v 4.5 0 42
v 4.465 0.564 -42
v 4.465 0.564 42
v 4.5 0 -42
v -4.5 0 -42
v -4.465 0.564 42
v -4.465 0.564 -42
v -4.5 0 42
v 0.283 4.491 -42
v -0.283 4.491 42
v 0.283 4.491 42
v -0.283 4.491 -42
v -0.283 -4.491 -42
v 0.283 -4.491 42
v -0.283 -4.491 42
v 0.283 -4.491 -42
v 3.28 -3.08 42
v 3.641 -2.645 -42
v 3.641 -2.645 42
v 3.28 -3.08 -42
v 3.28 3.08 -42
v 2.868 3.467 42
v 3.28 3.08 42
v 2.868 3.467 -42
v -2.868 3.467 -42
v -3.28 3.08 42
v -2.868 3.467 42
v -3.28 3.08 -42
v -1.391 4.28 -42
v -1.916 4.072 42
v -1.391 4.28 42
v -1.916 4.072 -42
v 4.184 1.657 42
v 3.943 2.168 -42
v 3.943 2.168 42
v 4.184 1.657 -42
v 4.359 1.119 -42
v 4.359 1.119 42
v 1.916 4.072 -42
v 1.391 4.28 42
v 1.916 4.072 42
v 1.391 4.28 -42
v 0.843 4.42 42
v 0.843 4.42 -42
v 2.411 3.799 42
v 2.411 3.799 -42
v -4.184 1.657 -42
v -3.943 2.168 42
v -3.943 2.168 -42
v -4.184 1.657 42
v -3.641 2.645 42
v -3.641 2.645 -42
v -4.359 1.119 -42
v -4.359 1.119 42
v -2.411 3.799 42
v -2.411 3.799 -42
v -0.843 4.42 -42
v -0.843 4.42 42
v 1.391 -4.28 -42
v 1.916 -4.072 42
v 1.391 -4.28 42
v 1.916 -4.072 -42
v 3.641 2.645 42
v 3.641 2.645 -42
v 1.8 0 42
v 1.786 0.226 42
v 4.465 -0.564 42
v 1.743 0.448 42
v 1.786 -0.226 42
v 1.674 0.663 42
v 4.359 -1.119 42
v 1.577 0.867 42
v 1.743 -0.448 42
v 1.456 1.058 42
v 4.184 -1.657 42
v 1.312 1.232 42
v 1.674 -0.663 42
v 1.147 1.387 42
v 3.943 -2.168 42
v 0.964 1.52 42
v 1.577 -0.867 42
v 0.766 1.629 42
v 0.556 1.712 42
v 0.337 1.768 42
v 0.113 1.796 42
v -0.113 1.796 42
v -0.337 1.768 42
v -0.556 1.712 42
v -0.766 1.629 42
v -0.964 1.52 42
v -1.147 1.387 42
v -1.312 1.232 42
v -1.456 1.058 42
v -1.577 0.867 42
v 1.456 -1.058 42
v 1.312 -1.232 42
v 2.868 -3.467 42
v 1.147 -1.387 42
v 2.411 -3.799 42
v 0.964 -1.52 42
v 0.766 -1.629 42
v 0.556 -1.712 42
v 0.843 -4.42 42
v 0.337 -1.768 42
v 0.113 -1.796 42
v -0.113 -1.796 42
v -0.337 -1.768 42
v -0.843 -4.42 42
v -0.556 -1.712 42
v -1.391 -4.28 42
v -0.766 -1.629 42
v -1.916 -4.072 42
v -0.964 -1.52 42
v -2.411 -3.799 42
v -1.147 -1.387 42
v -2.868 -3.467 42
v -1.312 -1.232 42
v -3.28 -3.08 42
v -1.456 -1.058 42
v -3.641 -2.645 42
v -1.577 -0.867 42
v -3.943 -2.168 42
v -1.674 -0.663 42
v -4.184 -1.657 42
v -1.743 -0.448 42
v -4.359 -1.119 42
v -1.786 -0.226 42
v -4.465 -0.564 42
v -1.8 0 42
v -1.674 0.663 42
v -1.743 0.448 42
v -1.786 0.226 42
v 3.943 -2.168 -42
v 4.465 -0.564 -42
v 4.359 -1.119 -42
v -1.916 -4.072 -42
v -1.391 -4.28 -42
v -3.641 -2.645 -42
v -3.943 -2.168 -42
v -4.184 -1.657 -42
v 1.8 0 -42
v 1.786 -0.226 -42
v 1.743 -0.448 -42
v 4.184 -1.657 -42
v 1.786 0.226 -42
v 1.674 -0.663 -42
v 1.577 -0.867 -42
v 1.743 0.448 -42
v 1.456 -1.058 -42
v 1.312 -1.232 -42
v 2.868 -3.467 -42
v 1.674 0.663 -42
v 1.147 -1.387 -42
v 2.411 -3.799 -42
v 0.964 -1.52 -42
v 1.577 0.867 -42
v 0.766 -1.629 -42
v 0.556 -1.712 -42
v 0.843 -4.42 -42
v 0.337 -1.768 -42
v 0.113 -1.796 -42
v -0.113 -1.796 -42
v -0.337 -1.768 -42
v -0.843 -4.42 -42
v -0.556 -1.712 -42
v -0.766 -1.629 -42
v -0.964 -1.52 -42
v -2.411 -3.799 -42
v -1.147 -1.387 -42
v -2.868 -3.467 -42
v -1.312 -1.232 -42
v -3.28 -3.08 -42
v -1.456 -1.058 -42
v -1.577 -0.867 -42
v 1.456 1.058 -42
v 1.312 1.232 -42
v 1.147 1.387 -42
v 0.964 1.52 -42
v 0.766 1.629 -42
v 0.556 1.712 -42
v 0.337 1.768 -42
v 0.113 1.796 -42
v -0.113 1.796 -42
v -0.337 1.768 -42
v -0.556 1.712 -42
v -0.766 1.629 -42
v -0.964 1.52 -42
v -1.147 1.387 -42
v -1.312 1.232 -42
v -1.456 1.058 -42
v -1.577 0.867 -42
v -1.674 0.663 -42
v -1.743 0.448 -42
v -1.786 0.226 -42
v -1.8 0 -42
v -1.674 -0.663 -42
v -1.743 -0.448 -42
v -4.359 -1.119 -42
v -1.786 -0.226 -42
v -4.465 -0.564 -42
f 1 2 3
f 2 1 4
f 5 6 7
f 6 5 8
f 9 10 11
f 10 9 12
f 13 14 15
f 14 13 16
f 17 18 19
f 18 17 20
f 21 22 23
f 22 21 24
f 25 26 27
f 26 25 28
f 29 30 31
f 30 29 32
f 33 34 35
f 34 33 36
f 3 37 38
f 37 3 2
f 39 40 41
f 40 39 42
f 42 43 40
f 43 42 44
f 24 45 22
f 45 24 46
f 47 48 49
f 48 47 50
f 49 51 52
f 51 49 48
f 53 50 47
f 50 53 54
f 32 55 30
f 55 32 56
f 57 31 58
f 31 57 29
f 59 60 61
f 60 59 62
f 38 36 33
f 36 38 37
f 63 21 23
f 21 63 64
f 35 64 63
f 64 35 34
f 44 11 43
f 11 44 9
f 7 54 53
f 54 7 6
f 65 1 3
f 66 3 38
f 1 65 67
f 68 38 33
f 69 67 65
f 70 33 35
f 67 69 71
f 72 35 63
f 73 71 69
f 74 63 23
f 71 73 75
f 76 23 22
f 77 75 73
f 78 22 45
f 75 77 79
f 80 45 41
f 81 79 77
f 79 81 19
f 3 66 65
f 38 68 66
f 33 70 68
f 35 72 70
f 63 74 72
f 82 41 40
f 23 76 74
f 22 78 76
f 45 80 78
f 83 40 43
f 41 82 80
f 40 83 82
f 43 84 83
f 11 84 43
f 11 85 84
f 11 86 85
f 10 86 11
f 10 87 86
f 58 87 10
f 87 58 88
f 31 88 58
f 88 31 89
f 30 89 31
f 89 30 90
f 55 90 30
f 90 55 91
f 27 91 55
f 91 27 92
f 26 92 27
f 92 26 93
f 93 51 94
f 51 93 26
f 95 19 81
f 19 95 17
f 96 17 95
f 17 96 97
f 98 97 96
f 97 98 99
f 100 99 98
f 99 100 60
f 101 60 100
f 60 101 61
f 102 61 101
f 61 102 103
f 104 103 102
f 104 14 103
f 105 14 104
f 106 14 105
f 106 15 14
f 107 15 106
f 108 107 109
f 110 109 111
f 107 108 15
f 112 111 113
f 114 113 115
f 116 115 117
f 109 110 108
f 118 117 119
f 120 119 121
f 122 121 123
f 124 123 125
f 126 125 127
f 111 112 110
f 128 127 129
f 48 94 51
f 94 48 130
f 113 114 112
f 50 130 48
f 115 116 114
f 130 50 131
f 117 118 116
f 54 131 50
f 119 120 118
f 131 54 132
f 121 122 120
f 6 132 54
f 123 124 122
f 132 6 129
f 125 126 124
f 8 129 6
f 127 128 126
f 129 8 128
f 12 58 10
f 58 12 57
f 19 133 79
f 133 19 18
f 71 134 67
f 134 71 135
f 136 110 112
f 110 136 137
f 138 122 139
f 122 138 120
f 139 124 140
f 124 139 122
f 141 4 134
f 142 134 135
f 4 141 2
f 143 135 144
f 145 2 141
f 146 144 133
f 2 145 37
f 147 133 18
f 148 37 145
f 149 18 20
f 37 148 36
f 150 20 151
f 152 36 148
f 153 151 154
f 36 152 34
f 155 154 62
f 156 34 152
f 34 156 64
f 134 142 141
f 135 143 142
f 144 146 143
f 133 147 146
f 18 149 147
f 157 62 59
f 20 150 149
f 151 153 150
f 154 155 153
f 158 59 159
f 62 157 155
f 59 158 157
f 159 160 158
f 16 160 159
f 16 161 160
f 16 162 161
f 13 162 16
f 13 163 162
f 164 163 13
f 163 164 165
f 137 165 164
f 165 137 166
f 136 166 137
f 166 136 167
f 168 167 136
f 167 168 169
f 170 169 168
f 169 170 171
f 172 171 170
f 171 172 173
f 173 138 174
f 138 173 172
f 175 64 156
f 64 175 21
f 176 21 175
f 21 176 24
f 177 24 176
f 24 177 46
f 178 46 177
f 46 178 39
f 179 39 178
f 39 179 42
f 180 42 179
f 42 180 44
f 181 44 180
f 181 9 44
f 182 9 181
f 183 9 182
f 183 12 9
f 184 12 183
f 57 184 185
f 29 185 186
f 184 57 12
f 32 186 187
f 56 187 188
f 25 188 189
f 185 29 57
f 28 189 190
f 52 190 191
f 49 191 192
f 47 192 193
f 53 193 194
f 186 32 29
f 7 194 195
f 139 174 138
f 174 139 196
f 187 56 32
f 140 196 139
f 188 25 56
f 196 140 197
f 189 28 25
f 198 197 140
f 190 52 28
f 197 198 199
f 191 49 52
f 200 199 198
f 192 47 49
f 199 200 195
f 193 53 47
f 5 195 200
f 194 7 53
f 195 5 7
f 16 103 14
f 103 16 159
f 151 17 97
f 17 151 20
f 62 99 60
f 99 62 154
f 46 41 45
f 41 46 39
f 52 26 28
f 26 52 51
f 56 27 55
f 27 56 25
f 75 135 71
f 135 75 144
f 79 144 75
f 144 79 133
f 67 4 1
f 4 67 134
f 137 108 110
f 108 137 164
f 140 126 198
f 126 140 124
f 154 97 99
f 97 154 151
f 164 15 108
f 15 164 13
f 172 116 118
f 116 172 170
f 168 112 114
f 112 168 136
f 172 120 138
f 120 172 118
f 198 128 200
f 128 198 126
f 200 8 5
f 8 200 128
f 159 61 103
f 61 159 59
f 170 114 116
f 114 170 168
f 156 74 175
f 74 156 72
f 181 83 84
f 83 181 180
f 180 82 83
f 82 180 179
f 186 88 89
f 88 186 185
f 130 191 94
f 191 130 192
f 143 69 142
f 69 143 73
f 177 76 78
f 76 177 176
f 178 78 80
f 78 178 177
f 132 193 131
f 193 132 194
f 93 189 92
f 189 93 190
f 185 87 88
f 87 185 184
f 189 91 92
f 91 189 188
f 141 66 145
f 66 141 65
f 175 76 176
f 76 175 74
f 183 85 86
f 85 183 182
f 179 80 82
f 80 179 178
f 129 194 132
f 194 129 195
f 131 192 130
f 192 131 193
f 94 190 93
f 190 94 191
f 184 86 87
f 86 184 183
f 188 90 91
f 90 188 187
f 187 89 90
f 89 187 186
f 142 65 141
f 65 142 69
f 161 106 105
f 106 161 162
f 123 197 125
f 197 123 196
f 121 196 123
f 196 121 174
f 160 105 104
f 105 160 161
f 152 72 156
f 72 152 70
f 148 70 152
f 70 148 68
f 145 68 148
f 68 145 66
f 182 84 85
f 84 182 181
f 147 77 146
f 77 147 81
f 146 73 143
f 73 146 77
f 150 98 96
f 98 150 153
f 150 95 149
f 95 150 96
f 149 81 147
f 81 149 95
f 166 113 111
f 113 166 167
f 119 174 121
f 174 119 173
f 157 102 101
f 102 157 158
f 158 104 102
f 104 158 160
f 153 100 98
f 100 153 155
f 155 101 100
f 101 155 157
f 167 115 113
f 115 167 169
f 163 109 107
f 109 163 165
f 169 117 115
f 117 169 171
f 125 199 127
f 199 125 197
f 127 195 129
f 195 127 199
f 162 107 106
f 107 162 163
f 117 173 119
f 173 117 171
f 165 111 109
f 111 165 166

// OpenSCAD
$fn = 50;


difference() {
	union() {
		translate(v = [0, 0, -42.0000000000]) {
			cylinder(h = 84, r = 4.5000000000);
		}
	}
	union() {
		translate(v = [0, 0, -100.0000000000]) {
			cylinder(h = 200, r = 1.8000000000);
		}
	}
}
